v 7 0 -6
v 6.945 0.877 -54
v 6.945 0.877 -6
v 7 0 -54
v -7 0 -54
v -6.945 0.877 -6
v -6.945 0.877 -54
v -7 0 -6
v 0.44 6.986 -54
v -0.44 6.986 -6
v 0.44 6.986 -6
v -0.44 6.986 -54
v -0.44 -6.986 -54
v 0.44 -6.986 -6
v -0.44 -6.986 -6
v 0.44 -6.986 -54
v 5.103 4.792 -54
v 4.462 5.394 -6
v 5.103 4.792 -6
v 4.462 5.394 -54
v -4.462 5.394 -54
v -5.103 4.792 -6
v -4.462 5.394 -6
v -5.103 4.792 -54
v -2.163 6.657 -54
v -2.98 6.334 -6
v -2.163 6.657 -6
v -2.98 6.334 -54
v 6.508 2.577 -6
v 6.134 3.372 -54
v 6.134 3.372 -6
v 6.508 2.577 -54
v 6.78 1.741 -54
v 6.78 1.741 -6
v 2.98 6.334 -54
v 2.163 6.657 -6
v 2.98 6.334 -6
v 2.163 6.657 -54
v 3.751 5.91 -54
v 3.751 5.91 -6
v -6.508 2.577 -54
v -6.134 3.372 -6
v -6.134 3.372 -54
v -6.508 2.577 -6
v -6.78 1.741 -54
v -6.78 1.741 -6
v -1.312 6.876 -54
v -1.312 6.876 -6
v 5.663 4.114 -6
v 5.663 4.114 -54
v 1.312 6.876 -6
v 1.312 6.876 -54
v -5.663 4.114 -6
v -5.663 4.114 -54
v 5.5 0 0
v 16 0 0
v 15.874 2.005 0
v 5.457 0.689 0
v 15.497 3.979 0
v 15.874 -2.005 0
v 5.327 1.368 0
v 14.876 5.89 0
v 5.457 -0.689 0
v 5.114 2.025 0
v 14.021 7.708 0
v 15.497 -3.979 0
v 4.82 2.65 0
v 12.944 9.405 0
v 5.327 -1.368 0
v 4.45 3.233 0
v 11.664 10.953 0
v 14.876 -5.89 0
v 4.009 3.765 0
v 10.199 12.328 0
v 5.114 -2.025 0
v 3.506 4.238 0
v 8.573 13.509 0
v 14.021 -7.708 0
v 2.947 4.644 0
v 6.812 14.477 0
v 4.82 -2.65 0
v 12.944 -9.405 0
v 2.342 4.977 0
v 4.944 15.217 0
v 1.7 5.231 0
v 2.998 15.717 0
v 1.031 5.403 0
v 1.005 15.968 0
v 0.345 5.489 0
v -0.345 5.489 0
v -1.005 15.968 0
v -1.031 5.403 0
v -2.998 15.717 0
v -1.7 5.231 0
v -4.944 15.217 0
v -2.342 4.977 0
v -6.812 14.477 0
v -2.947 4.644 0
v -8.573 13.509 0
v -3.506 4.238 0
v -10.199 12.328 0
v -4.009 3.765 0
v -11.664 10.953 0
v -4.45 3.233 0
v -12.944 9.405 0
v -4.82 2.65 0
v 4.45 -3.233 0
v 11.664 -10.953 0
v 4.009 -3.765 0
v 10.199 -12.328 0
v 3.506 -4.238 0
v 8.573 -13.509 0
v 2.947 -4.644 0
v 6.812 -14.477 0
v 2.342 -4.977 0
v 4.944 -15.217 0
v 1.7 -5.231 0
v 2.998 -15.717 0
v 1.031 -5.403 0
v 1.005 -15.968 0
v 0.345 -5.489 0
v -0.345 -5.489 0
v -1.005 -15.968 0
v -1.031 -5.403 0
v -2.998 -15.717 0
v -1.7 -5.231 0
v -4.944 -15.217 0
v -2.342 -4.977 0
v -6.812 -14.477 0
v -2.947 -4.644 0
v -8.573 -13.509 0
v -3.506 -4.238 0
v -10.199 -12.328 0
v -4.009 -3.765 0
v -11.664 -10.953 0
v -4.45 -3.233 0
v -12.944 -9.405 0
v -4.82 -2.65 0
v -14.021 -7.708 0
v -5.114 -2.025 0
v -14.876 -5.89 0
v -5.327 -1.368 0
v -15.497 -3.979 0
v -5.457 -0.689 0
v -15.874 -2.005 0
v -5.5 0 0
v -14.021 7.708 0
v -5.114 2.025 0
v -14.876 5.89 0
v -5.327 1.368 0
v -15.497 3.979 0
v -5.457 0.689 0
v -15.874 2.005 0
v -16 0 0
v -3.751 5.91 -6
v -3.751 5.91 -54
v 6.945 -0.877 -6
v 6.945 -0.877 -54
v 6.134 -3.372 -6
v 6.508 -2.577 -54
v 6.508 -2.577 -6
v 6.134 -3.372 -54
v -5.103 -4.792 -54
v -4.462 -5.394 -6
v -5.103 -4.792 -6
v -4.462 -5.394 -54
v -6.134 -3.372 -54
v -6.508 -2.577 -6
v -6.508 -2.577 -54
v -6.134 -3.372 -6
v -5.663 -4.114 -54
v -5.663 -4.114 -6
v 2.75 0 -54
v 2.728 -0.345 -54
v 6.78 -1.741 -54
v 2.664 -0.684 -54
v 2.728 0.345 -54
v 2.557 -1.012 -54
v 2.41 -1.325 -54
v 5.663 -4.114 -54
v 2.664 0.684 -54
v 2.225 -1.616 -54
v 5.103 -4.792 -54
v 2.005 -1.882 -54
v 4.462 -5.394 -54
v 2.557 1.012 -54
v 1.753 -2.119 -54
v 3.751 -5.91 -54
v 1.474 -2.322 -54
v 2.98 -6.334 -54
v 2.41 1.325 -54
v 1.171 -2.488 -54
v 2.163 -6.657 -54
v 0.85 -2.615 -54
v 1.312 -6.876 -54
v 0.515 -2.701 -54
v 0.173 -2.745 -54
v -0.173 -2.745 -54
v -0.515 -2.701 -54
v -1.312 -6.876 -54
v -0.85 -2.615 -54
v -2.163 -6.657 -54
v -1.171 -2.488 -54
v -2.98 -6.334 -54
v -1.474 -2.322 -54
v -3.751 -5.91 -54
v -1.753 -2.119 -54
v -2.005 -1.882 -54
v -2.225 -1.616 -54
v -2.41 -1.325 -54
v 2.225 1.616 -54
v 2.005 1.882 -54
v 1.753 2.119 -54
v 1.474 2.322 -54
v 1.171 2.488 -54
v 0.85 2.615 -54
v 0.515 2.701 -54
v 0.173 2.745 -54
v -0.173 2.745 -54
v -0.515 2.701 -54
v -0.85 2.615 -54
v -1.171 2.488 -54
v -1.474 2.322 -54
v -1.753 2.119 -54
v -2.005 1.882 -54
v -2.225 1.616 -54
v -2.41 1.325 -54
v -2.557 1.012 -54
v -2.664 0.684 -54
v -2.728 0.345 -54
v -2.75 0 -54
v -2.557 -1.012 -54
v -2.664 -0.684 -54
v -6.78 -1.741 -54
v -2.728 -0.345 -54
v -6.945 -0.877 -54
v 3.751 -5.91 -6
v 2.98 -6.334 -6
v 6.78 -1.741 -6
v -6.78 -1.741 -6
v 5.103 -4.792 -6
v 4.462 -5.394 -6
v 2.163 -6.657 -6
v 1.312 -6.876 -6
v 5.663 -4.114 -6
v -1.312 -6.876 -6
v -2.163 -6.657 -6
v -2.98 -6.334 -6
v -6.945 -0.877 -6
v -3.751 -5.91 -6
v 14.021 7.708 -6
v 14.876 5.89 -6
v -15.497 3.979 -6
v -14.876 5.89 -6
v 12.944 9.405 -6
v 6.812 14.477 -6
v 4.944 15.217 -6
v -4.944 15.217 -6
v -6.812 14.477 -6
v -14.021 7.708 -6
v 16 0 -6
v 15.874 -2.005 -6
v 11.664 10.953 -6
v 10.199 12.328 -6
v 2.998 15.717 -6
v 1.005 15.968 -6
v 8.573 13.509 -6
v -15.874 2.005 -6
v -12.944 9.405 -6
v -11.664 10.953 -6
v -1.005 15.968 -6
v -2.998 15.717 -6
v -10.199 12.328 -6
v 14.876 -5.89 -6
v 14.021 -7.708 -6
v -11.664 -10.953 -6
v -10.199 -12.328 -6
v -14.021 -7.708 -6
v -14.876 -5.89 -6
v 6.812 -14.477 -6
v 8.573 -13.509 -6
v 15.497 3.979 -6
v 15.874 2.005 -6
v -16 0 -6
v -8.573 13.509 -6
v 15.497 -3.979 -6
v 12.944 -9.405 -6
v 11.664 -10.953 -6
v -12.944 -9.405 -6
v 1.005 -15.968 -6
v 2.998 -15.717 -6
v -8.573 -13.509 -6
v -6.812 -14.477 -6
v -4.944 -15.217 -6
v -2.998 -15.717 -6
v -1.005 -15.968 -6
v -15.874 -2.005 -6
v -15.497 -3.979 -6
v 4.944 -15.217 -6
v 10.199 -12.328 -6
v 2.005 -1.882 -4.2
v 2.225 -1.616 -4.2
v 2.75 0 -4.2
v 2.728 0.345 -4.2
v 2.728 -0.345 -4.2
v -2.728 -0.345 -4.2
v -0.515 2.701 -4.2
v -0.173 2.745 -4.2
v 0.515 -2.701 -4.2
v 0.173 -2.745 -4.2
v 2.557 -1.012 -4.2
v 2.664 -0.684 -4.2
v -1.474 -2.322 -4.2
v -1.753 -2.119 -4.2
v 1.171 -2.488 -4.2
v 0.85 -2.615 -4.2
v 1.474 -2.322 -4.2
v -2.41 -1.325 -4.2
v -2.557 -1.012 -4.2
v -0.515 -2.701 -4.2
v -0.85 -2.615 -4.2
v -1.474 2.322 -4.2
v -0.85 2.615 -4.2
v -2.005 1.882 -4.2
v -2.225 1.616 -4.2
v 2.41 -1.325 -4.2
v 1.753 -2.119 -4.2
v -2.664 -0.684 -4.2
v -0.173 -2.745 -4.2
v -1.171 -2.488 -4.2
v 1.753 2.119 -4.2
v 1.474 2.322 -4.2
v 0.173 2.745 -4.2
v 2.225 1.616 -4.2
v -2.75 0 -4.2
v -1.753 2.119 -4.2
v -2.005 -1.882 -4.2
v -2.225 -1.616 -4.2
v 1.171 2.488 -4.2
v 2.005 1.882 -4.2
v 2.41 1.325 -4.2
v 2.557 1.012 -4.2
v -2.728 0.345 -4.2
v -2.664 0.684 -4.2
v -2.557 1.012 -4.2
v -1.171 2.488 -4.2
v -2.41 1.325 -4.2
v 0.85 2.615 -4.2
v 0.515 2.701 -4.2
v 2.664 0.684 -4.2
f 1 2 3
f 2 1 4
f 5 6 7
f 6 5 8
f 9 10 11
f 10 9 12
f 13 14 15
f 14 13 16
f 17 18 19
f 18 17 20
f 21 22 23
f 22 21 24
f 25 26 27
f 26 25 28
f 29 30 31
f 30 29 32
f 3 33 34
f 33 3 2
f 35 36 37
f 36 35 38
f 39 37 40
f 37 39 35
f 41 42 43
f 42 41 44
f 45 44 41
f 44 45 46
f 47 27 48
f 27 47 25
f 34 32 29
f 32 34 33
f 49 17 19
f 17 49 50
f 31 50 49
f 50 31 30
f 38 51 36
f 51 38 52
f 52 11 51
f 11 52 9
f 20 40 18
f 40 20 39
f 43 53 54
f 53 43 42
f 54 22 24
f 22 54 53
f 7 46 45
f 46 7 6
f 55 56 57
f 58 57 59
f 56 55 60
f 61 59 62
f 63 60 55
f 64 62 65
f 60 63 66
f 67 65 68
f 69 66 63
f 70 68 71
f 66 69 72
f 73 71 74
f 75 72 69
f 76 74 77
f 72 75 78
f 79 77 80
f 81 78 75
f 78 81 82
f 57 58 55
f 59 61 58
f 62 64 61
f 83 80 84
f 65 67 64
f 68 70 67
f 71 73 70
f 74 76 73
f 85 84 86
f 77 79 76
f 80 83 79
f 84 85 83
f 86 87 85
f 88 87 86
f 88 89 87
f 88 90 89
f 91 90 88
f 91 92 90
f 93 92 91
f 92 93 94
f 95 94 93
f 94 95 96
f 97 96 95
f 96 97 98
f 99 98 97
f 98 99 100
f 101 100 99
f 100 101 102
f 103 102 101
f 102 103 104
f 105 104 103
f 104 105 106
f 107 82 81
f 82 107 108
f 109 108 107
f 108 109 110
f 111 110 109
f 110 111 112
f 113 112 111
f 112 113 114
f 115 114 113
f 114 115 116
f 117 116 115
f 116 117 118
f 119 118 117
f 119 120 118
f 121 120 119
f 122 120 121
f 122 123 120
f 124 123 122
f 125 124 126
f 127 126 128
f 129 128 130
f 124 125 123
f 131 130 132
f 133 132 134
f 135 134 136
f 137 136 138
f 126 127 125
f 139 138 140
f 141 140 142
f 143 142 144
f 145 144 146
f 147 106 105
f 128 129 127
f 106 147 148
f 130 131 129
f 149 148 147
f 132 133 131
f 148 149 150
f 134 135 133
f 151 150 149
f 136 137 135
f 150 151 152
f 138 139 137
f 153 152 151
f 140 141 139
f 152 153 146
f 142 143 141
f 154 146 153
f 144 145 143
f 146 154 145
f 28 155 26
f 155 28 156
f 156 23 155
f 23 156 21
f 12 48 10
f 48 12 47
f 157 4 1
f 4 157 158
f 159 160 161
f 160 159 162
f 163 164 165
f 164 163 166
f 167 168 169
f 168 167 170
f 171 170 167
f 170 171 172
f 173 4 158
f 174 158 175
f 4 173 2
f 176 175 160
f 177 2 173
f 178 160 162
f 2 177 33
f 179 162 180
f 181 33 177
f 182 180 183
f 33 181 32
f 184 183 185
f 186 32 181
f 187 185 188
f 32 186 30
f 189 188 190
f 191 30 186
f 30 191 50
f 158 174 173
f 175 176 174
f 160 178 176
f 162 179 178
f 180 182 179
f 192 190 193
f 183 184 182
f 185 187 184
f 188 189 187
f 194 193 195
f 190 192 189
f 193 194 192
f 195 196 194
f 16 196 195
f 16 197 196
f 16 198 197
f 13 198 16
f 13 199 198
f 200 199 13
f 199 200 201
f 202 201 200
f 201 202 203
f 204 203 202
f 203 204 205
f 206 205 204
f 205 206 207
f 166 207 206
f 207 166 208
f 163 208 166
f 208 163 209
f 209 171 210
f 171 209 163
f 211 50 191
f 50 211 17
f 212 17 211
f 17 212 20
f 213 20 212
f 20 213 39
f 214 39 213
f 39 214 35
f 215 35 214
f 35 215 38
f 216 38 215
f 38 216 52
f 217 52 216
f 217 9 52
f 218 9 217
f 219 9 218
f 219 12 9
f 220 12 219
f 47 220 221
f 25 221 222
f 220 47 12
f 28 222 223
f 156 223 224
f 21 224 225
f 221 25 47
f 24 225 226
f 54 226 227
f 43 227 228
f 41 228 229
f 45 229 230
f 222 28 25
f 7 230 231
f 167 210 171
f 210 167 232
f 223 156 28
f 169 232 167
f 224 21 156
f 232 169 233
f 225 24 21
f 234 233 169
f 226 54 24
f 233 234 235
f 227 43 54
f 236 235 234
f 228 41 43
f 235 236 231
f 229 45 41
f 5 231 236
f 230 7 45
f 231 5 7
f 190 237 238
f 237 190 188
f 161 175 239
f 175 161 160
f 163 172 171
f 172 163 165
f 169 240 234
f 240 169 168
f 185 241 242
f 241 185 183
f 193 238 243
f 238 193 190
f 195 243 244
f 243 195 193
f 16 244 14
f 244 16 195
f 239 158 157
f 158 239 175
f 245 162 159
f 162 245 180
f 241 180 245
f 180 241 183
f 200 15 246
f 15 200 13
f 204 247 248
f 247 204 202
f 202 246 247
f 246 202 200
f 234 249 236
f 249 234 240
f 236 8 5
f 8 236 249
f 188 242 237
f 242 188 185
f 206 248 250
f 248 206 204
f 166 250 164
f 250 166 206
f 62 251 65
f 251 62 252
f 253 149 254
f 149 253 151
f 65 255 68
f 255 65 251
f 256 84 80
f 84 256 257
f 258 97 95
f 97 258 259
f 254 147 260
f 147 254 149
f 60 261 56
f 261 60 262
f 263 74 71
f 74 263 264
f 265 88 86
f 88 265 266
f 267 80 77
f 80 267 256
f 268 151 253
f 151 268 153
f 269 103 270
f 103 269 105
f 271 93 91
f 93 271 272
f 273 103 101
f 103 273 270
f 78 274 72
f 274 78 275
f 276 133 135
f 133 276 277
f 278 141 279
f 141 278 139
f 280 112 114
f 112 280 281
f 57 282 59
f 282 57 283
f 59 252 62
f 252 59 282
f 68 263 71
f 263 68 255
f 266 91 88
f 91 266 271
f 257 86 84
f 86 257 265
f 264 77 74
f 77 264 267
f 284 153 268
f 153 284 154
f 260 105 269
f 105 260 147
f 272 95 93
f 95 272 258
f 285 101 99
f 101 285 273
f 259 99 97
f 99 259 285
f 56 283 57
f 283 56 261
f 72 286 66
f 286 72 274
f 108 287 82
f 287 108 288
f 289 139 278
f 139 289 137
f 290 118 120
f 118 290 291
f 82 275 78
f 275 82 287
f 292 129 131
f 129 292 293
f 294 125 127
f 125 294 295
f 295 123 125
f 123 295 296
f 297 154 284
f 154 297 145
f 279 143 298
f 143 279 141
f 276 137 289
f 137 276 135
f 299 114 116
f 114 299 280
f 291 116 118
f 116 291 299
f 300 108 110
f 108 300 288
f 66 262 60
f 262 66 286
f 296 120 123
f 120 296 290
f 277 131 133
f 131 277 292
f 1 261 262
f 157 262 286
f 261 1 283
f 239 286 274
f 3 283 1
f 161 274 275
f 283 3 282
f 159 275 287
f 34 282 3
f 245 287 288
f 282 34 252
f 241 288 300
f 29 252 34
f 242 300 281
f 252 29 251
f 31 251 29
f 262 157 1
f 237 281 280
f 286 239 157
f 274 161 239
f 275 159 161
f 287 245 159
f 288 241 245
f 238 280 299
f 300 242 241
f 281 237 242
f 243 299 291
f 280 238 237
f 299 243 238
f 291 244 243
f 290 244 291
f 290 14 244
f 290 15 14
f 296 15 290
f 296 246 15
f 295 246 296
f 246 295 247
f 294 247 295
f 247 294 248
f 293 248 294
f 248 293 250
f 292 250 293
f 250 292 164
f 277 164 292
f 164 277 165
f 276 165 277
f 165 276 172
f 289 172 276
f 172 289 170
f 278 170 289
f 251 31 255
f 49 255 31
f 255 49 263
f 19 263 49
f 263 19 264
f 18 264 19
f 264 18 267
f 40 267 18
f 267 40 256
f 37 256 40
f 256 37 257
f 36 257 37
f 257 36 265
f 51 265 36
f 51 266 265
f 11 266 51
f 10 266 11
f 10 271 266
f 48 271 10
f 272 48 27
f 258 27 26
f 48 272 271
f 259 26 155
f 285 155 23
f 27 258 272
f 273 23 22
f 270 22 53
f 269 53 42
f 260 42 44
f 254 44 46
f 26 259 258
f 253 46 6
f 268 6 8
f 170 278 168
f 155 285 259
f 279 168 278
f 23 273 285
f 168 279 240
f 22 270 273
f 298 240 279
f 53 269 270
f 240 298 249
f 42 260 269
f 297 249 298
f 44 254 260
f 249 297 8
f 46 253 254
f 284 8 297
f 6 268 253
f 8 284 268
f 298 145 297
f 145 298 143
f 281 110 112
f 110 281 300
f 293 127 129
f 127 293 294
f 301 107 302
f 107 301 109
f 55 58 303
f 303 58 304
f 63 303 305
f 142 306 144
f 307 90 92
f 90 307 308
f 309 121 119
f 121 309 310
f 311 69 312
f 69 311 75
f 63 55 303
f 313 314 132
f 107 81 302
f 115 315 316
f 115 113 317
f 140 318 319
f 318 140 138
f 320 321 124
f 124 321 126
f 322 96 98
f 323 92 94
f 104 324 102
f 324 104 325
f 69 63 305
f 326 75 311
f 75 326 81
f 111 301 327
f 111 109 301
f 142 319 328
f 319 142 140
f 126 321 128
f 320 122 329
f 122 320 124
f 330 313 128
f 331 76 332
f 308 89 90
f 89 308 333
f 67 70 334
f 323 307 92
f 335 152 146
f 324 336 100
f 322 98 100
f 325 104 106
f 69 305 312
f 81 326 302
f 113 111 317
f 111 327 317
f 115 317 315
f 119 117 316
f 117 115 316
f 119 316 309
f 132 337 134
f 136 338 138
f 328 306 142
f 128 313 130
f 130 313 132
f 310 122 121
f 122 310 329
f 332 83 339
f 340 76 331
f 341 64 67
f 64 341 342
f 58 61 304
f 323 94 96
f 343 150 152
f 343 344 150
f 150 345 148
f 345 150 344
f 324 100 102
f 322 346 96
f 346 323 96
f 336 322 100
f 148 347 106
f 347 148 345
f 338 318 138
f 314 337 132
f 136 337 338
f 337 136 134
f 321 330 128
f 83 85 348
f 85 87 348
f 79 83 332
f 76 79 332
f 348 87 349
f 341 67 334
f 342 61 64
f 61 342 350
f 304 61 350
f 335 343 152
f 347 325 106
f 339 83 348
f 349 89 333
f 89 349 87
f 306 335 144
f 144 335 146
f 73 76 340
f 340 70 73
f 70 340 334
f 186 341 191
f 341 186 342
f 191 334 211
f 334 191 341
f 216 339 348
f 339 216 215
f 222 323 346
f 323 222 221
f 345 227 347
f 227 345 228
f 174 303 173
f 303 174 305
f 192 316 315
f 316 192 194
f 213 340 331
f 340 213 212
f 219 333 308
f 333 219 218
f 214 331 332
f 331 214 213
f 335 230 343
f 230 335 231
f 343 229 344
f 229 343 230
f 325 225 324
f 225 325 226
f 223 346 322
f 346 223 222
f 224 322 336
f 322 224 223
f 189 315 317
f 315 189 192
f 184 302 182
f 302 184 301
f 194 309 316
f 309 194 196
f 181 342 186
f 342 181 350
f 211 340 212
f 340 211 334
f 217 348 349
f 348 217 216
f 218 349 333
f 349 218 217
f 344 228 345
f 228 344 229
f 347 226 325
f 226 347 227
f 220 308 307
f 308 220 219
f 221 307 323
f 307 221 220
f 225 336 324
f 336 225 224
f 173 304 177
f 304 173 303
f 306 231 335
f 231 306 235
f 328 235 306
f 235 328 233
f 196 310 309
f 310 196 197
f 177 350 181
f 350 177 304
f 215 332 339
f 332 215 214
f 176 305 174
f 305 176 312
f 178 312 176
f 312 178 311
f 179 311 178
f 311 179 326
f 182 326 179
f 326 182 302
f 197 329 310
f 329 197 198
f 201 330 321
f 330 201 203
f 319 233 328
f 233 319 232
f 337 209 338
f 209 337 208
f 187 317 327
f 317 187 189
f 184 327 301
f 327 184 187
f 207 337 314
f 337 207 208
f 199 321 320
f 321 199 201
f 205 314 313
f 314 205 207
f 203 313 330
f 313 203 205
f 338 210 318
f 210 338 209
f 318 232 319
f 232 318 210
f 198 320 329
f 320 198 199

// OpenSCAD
$fn = 50;


difference() {
	union() {
		translate(v = [0, 0, -54.0000000000]) {
			cylinder(h = 54, r = 7.0000000000);
		}
		translate(v = [0, 0, -6.0000000000]) {
			cylinder(h = 6, r = 16.0000000000);
		}
	}
	union() {
		translate(v = [0, 0, 0]) {
			rotate(a = [0, 0, 0]) {
				difference() {
					union() {
						#translate(v = [0, 0, -54.0000000000]) {
							cylinder(h = 54, r = 2.2500000000);
						}
						#translate(v = [0, 0, -4.2000000000]) {
							cylinder(h = 4.2000000000, r = 7.0000000000, r1 = 2.7500000000, r2 = 5.5000000000);
						}
						#translate(v = [0, 0, -54.0000000000]) {
							cylinder(h = 54, r = 2.7500000000);
						}
						#translate(v = [0, 0, -54.0000000000]) {
							cylinder(h = 54, r = 2.2500000000);
						}
					}
					union();
				}
			}
		}
	}
}
